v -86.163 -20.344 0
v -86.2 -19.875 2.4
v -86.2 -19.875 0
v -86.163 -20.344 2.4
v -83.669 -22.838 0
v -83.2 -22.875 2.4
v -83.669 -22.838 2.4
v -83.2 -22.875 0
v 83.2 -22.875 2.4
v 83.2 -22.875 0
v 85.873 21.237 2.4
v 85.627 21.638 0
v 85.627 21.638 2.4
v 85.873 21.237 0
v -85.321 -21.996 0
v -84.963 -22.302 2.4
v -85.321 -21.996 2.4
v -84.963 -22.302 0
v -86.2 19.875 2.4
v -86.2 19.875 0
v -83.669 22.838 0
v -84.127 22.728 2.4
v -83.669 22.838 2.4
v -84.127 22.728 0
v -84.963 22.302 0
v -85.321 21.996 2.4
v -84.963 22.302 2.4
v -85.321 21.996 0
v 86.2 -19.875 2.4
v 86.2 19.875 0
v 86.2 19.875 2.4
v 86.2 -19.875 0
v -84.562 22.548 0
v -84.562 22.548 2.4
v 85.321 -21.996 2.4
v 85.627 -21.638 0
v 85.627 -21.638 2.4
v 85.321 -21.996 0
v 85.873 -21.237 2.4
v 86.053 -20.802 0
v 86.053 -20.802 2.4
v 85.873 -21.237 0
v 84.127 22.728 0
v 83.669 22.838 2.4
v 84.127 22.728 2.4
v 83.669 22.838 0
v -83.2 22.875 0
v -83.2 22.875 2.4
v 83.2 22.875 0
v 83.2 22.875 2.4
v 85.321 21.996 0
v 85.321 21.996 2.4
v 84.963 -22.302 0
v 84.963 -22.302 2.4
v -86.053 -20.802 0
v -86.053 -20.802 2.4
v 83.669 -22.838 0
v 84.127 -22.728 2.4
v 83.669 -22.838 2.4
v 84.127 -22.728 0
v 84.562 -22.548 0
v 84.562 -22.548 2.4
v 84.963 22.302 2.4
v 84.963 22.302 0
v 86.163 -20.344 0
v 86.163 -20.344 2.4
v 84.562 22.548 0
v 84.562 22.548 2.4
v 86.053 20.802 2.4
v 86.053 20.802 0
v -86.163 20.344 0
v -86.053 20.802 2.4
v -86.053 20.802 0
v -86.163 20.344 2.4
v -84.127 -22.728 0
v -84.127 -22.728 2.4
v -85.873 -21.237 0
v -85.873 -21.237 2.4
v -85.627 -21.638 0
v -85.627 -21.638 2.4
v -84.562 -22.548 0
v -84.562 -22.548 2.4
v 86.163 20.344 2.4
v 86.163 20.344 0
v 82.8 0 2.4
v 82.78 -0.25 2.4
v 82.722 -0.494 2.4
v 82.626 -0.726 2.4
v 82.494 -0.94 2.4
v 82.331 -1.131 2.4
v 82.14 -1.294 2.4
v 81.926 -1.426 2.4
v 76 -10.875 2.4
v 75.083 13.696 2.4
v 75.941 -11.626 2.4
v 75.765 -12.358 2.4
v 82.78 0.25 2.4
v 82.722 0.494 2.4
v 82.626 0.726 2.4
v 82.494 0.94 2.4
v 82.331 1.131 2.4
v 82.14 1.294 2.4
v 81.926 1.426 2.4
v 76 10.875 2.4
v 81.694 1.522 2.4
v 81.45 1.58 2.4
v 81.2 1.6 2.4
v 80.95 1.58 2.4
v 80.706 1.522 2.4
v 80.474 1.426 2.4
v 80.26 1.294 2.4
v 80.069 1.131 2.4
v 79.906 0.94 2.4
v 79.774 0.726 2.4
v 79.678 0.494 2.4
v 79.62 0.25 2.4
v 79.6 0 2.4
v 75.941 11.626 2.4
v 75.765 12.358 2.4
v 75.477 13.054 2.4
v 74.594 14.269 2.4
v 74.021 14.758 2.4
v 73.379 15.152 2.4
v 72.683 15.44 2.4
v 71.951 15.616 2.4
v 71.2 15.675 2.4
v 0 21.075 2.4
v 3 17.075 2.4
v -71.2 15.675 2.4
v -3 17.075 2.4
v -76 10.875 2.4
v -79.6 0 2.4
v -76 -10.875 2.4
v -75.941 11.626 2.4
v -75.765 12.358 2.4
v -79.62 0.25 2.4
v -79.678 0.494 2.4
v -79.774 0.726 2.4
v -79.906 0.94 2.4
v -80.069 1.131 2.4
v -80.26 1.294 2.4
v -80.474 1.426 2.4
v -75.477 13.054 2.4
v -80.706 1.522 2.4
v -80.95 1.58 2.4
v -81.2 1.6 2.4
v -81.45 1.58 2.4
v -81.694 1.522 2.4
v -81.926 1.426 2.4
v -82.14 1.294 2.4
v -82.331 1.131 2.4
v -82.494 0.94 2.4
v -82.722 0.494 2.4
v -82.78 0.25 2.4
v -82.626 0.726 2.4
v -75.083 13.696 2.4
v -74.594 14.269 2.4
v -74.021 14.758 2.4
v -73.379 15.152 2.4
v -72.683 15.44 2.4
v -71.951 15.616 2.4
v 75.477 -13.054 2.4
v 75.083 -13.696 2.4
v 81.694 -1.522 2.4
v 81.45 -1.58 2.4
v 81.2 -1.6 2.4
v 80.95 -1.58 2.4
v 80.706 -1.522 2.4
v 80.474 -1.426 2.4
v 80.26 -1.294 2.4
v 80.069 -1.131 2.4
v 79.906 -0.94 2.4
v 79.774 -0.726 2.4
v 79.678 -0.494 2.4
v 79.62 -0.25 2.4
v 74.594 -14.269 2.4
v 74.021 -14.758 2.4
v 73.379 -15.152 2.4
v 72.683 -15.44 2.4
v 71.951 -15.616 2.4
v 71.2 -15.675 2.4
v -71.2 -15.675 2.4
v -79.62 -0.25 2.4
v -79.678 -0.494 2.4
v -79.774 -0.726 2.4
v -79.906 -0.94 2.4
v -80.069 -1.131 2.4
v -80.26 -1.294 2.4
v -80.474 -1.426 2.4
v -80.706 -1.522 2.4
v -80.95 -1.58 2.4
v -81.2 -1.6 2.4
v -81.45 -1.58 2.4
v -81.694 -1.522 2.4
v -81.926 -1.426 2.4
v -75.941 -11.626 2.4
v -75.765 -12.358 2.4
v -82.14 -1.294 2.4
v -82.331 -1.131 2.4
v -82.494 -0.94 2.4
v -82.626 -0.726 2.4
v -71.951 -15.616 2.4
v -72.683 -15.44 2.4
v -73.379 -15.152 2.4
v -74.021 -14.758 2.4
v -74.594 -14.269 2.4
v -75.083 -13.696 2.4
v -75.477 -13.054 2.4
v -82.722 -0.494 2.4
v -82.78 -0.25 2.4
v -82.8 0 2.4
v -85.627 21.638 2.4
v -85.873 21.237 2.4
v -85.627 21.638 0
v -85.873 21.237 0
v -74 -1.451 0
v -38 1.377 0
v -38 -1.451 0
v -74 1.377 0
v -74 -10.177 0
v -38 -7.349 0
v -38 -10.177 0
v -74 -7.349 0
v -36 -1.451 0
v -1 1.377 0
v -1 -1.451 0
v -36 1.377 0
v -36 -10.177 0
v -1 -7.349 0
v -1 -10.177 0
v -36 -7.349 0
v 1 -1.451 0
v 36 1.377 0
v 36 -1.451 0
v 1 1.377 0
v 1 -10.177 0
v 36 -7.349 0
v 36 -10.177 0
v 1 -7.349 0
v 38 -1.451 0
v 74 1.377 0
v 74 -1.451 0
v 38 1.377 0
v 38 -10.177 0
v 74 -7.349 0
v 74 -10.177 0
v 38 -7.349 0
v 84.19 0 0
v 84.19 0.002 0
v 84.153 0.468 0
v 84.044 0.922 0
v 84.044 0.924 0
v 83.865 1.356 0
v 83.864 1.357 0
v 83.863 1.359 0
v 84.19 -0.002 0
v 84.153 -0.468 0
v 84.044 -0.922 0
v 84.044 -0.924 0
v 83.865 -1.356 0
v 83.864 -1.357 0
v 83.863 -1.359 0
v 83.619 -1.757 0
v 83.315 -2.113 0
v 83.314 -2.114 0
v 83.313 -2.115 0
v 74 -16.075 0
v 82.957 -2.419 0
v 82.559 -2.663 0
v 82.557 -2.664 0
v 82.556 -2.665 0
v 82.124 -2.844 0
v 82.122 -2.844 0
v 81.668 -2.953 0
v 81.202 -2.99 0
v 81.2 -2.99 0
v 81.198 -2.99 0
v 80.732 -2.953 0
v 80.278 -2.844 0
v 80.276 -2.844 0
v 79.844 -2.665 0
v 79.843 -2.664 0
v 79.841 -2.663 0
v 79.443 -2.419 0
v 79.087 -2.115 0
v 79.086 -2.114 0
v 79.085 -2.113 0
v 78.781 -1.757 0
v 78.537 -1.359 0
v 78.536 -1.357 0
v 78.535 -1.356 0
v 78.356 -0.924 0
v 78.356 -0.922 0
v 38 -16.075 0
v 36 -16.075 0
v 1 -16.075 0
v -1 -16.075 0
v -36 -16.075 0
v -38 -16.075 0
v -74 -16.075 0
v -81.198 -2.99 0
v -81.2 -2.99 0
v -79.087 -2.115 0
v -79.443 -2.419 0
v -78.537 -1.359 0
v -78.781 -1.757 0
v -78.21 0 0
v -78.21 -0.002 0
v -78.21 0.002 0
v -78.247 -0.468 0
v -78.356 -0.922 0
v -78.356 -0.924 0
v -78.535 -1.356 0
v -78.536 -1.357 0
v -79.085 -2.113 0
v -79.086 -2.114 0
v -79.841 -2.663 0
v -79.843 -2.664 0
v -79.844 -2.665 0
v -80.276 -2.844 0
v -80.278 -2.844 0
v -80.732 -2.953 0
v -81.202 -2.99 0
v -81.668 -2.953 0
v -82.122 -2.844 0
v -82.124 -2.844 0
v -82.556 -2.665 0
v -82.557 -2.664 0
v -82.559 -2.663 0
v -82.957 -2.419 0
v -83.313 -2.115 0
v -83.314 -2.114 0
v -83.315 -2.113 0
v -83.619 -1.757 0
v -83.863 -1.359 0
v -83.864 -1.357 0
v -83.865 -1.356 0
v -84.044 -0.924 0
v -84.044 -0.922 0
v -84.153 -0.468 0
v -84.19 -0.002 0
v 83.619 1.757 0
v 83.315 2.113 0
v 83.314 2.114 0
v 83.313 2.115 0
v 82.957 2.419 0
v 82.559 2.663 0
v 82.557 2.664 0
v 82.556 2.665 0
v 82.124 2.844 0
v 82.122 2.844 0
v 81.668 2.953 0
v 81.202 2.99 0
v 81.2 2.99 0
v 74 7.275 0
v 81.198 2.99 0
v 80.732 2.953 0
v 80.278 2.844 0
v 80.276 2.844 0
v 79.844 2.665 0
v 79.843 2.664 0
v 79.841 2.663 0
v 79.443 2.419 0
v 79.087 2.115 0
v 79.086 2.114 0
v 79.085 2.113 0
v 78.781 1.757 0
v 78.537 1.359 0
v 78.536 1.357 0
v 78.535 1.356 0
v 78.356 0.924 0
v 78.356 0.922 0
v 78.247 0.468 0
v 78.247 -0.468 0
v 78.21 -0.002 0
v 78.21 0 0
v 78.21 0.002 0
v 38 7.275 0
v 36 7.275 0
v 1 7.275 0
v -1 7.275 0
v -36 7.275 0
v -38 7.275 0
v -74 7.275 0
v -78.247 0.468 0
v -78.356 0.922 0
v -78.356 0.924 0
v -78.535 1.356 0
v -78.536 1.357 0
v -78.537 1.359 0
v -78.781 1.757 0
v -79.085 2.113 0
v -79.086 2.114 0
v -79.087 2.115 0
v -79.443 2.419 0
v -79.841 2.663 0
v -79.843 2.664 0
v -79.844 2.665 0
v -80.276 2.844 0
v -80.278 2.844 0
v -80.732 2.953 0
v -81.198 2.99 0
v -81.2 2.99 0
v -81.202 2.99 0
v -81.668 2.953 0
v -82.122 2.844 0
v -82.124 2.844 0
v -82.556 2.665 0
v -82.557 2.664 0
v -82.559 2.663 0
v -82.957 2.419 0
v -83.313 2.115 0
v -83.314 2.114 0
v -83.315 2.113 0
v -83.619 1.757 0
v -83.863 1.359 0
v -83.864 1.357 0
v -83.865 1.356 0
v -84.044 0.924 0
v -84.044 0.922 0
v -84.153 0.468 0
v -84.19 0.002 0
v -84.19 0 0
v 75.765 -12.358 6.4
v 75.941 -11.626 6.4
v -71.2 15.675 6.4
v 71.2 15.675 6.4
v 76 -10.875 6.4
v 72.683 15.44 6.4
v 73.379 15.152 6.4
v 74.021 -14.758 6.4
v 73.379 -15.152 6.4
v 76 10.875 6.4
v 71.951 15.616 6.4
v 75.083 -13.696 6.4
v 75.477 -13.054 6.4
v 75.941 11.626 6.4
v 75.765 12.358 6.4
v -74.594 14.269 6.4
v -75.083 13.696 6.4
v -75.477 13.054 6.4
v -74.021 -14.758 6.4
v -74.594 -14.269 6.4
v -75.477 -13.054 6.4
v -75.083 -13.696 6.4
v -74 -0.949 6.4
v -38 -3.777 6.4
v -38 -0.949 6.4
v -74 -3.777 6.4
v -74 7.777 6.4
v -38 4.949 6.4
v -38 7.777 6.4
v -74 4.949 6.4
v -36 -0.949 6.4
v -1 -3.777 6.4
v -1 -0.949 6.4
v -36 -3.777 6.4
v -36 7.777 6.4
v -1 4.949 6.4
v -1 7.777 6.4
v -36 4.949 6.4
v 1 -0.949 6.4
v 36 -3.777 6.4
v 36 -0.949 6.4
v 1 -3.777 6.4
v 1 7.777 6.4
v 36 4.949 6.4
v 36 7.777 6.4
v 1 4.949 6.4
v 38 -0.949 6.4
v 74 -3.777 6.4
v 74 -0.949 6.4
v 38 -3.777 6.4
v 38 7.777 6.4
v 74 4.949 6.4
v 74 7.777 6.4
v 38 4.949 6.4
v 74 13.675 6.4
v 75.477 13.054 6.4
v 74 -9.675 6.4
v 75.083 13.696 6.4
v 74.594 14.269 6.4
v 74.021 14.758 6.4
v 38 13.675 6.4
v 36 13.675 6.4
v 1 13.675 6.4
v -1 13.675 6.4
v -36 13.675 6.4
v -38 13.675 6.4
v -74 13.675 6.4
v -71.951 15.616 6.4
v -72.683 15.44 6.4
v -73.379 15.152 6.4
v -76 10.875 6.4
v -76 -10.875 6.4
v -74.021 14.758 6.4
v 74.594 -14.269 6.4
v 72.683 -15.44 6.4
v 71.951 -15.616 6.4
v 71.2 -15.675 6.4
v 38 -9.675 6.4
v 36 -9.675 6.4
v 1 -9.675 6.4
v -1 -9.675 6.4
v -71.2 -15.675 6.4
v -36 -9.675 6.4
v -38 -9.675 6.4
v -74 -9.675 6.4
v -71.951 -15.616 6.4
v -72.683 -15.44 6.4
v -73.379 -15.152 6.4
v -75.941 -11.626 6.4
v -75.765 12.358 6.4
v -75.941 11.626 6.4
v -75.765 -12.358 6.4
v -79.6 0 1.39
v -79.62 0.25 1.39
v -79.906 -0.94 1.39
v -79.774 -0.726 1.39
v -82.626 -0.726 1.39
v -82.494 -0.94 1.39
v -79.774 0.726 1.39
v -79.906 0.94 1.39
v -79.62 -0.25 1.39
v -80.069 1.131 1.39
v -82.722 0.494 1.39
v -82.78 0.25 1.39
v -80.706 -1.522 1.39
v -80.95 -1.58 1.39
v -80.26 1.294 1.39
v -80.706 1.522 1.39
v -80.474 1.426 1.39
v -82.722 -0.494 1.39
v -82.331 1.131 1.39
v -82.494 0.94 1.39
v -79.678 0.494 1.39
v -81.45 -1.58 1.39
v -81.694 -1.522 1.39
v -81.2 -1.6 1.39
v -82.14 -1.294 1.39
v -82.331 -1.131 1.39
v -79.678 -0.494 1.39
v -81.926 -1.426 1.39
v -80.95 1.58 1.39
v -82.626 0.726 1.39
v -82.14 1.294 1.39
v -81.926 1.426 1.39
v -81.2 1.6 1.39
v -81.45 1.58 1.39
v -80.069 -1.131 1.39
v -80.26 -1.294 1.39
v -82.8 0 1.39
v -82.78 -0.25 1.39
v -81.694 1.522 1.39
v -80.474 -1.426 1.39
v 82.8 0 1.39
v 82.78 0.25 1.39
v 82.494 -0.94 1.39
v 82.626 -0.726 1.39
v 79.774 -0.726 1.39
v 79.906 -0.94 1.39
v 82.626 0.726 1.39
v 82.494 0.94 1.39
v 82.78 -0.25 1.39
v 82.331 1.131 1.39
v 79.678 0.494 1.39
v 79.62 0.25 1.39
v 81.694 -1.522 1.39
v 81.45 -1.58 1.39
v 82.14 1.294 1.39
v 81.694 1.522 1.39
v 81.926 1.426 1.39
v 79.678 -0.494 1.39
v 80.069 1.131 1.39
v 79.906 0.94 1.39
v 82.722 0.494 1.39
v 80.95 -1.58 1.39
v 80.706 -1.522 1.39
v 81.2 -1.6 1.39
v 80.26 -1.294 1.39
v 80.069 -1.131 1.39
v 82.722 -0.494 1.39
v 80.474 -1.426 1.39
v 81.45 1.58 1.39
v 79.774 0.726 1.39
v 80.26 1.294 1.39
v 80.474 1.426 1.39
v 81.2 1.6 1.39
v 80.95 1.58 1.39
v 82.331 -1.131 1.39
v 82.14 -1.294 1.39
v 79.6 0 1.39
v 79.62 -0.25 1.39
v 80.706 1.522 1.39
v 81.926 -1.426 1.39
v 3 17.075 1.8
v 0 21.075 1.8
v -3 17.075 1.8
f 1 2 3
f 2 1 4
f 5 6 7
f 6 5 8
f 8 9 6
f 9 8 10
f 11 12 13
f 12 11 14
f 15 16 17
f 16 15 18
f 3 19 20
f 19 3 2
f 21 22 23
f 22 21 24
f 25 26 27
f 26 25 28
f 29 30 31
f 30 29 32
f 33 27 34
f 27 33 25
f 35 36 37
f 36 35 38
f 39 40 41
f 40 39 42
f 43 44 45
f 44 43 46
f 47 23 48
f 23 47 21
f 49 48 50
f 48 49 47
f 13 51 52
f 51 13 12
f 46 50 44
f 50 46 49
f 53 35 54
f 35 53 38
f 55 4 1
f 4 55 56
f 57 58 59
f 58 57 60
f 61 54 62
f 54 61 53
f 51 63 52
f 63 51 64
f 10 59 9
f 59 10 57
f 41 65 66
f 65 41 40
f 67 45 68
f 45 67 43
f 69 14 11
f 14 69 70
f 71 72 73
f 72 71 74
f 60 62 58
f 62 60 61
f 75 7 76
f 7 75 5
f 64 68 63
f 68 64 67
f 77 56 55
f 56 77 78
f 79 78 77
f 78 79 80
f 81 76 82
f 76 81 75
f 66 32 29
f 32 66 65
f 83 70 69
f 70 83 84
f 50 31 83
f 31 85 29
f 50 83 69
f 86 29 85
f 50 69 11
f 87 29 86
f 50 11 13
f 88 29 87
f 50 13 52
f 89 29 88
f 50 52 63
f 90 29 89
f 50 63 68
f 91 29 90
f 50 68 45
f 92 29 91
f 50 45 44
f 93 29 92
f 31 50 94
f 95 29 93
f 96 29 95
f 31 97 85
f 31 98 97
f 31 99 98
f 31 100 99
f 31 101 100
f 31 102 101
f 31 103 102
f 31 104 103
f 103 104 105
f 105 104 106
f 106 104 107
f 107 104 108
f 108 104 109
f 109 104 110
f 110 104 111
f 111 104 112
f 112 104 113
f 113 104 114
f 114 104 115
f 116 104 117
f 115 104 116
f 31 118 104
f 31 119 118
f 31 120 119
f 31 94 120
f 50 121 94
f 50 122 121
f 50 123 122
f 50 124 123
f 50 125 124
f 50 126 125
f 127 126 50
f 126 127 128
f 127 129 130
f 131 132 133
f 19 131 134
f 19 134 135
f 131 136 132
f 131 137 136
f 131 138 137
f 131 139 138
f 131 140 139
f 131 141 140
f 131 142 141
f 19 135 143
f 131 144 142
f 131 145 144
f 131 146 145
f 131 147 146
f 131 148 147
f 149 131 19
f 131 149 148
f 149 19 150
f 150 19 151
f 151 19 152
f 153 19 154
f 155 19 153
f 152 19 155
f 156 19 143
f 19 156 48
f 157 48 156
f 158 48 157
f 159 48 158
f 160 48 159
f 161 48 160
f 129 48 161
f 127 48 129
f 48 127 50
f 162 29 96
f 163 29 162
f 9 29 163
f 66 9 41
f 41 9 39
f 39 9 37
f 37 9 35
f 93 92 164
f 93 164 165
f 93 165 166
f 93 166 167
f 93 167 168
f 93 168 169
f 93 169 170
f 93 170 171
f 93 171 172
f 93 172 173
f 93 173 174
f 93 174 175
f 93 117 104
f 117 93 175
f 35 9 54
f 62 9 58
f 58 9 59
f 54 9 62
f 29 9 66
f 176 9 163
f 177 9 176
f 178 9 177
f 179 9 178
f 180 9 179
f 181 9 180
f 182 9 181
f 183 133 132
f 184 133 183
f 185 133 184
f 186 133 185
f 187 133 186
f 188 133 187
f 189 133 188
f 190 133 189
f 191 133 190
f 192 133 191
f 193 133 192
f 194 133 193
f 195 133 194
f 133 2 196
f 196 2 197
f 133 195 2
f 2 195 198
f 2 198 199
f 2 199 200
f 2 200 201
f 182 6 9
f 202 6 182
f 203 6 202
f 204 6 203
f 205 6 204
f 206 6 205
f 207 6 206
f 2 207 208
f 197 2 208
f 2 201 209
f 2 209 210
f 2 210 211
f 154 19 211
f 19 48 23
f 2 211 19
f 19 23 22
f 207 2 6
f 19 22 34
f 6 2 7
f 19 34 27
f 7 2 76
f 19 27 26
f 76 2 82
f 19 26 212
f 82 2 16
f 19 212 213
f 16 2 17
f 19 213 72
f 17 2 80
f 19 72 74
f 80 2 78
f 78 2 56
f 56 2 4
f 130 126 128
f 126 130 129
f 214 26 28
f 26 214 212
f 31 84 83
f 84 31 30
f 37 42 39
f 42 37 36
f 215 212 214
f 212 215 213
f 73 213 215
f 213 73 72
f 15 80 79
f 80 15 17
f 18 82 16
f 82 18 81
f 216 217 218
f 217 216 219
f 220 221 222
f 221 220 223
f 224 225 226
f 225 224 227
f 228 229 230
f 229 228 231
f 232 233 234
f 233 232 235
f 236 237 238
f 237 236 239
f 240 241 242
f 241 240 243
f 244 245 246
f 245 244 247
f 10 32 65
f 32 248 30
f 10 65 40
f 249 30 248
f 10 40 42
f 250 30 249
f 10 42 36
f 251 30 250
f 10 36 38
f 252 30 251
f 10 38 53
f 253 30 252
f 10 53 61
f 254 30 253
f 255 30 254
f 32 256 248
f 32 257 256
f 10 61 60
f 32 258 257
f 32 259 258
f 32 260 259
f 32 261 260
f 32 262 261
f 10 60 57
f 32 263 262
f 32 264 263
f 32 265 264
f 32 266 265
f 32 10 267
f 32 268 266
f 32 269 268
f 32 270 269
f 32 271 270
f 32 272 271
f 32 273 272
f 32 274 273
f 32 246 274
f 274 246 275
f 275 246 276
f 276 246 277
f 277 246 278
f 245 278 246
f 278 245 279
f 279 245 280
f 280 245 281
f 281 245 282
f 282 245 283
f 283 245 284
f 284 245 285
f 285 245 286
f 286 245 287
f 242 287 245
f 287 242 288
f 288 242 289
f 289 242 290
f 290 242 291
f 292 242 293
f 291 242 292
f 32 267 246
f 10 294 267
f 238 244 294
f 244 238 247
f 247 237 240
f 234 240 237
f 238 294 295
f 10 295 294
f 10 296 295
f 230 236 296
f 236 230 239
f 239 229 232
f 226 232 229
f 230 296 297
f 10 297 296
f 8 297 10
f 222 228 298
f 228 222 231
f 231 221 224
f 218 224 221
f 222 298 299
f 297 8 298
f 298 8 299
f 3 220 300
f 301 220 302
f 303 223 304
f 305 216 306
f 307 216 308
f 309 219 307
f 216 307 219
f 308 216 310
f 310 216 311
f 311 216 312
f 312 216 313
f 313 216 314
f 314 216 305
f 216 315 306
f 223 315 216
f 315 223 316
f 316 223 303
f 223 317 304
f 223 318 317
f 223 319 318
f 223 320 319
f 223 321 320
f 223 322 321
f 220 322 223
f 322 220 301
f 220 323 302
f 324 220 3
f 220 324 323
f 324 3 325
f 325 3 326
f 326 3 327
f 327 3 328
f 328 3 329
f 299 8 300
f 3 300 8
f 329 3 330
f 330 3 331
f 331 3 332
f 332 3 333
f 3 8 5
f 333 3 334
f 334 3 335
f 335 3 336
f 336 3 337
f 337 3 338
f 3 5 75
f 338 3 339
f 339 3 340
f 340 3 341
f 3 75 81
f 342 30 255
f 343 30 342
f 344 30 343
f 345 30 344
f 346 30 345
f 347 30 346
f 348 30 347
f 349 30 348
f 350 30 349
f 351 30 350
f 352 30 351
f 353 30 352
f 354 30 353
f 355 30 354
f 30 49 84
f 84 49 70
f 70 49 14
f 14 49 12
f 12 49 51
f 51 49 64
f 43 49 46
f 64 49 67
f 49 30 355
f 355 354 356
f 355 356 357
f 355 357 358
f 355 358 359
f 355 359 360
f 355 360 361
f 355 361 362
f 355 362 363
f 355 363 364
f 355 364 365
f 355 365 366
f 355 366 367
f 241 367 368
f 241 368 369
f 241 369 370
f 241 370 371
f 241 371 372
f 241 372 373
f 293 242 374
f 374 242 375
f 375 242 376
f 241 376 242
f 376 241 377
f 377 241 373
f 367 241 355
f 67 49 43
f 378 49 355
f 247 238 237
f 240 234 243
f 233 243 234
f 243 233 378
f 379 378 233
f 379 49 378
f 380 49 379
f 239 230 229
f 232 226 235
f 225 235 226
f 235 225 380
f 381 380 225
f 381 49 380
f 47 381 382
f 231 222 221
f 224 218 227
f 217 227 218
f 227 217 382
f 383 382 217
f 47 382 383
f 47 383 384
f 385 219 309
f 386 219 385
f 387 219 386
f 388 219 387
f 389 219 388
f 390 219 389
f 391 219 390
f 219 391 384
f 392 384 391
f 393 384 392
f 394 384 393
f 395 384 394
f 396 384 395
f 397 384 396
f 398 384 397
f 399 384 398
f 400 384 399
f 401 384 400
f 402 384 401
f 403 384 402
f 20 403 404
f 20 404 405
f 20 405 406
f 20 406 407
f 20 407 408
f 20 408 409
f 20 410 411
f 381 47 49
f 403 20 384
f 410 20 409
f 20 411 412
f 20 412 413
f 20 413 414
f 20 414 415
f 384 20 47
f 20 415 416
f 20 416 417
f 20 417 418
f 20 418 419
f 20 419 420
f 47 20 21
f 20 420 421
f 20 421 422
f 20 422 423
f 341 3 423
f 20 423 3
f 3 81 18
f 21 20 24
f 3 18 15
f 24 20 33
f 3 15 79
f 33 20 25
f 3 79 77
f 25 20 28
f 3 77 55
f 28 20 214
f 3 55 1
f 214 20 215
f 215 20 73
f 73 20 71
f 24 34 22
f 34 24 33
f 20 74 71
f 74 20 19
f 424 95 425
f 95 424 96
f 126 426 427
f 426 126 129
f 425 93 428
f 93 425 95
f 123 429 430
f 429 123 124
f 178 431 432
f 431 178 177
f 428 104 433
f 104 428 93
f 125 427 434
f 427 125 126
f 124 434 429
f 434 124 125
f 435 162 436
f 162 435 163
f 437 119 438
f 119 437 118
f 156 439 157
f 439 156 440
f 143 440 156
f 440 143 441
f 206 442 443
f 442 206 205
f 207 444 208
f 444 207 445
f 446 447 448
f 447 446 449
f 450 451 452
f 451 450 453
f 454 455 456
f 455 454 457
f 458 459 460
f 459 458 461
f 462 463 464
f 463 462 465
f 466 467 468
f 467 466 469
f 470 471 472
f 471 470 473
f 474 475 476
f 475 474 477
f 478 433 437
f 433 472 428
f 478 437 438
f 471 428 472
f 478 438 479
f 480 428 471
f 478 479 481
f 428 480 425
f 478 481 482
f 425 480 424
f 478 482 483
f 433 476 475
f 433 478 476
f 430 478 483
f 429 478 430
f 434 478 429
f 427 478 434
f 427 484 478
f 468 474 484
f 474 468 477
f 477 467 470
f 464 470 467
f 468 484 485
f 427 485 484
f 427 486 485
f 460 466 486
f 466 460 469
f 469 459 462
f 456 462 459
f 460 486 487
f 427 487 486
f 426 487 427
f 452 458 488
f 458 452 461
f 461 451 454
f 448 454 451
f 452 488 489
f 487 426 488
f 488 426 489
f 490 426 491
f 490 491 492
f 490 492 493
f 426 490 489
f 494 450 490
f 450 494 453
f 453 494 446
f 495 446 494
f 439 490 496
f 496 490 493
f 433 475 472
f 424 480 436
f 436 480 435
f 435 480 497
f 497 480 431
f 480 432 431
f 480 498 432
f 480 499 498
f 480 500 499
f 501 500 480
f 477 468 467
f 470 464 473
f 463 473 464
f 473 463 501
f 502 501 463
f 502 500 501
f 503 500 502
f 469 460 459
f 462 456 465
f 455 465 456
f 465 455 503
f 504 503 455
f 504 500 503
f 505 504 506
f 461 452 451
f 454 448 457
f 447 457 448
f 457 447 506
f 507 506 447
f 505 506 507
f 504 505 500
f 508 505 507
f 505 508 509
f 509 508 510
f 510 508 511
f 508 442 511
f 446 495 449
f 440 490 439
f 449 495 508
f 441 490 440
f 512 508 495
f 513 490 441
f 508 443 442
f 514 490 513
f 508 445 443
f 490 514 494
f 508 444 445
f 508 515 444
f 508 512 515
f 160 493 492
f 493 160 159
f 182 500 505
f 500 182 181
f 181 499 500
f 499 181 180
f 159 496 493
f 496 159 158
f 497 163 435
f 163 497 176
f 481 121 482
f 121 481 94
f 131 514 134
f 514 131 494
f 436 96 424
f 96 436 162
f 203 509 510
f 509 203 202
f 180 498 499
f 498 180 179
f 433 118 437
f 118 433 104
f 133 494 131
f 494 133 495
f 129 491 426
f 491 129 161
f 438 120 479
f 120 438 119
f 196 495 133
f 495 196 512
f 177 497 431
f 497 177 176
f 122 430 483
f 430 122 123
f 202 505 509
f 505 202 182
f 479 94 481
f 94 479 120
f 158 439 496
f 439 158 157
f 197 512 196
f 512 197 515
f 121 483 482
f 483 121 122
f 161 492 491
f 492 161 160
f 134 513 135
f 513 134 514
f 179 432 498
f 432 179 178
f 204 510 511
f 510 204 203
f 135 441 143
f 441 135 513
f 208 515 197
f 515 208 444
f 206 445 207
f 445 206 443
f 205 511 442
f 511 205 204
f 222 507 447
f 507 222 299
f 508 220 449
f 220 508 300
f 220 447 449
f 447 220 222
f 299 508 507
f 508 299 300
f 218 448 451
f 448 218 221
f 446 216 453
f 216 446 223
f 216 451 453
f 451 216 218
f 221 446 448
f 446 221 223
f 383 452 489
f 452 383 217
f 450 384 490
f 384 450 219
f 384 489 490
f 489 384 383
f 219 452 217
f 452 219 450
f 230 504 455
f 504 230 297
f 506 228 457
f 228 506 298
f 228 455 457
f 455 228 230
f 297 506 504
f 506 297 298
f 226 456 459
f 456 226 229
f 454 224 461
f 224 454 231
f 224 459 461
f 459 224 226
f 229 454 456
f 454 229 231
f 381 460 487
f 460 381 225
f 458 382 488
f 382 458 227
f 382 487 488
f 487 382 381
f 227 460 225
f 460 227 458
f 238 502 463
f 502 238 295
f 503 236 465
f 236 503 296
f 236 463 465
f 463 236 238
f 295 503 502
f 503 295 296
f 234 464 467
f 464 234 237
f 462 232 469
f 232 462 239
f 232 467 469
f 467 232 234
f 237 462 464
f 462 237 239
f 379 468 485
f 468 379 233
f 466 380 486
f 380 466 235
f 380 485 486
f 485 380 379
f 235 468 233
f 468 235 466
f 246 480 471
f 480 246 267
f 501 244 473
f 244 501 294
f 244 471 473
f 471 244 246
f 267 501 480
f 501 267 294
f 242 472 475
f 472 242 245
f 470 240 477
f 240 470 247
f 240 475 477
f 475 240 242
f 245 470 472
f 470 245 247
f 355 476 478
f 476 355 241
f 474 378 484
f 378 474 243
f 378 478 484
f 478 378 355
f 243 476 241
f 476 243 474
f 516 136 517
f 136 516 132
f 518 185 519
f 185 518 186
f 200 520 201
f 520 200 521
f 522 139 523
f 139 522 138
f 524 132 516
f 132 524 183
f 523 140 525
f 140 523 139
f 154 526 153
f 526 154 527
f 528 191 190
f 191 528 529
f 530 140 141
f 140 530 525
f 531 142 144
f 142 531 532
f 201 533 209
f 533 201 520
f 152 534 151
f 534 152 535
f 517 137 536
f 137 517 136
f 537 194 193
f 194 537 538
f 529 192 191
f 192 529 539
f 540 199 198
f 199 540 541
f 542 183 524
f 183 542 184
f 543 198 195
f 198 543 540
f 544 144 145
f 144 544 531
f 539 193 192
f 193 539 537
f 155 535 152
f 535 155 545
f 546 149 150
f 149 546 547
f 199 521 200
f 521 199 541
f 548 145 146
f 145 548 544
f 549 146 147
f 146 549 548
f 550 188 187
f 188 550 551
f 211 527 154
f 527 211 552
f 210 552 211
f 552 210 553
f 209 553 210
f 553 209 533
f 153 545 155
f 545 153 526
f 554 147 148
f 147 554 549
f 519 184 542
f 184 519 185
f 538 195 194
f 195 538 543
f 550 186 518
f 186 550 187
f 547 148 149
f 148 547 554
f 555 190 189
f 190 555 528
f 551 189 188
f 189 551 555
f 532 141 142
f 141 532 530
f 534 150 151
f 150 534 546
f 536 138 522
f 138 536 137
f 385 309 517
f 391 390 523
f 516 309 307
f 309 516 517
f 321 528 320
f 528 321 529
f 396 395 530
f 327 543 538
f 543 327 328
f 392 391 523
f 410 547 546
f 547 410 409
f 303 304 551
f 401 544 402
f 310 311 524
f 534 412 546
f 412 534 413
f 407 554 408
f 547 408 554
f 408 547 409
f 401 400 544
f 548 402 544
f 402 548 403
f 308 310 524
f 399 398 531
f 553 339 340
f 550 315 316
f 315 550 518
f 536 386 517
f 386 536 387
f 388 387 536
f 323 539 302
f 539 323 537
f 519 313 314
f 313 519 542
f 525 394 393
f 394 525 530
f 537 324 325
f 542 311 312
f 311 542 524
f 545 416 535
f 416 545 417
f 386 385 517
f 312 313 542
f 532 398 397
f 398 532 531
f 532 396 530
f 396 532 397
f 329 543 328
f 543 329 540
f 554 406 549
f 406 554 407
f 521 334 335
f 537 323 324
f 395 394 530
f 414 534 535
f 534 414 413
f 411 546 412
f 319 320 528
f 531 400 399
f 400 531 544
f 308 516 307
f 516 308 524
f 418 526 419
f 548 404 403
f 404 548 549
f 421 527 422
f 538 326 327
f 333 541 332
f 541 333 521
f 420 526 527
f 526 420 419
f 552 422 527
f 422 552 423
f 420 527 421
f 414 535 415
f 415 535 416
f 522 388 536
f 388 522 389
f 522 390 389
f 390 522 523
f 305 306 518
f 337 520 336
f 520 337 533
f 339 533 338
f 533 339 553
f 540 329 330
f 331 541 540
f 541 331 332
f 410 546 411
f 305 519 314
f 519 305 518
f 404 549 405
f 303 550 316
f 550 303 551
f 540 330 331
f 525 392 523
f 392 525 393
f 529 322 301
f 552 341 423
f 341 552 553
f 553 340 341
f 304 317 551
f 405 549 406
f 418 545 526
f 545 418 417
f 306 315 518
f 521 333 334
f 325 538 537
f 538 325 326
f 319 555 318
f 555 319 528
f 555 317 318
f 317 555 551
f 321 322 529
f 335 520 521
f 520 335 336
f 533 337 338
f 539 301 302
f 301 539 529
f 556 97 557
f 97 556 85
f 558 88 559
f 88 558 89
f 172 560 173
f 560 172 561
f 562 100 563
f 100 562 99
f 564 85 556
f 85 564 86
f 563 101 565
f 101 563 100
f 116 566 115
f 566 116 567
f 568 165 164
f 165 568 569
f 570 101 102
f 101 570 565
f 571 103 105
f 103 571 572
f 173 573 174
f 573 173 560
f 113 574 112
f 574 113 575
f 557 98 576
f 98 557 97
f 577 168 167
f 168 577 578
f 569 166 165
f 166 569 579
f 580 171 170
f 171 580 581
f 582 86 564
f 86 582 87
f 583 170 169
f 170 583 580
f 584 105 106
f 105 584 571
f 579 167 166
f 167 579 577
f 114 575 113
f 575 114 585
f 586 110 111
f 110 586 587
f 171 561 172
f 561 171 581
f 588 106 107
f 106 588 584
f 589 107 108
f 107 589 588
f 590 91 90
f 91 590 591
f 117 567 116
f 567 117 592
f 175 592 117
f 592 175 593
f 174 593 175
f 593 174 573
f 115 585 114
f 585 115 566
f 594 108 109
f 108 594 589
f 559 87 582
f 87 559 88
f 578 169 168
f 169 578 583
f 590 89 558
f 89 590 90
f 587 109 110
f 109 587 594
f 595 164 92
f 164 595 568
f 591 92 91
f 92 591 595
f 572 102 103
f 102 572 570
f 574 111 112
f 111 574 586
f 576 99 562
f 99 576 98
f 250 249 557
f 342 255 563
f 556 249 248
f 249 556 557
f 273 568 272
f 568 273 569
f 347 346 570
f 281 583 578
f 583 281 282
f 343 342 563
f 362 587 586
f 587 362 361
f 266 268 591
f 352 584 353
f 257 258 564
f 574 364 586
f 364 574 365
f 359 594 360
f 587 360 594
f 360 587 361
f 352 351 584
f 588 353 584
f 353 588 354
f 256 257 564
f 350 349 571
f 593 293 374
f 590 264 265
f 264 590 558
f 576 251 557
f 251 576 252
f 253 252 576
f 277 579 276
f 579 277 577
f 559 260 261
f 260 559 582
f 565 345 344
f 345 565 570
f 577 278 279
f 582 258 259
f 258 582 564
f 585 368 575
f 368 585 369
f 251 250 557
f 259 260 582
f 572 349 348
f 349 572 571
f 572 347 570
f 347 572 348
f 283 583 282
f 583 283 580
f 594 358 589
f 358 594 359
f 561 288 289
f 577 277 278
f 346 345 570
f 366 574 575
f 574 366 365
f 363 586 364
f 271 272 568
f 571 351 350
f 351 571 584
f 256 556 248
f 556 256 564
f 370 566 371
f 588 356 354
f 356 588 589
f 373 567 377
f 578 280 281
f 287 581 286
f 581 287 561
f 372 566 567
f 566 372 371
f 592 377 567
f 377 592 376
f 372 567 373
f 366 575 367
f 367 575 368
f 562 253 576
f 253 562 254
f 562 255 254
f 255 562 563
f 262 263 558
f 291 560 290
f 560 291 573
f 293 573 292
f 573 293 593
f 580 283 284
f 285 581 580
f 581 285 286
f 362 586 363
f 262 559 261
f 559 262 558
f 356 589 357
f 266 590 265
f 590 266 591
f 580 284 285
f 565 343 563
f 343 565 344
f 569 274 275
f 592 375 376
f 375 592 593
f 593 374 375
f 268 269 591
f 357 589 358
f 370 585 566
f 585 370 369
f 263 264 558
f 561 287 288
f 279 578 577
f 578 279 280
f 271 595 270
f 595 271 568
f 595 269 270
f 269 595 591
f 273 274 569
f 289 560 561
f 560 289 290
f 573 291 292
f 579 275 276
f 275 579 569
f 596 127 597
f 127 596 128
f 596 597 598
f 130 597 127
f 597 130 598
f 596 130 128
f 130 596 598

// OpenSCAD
// Side vent grille for the plywood box prototype.
//
// Fits a rectangular hole cut in a box side: the flange sits on the outside
// face and the plug goes into the hole. The slats slope down on the way out,
// so from level or above you can't see in (the Pi's LEDs stay out of the
// bedroom) and dust doesn't fall in.
//
// Print it flange face down, no supports. Units are millimetres. The console
// echoes the size, the slat spacing and the open area. See README.md.

/* [Hole in the box side] */
// Hole width (6 in)
hole_w = 152.4;
// Hole height (1 1/4 in). Keep it clear of the top and bottom panels behind the side
hole_h = 31.75;
// Plug corner radius. If you drill the hole's corners, at least the drill's radius
hole_r = 5;
// Gap between the plug and the hole, each side
fit = 0.2;
// How far the plug goes into the hole. Less than the plywood thickness
plug_depth = 4;

/* [Flange] */
flange_t = 2.4;
// Flange width above and below the hole
flange_side = 7;
// Flange width at each end, where the screws go
flange_end = 10;
screws = true;
// #4 flat-head wood screw: shank clearance and head diameter
screw_d = 3.2;
screw_head_d = 6;


/* [Slats] */
// Slope of the slats below horizontal, on the way out. 0 = straight slots
slat_angle = 45; // [0:5:50]
slat_t = 2;
// Number of openings between the slats. 0 = the fewest that still hide the inside from level view
channels = 0;
// Upright ribs tying the slats together across the width, so they don't flex
ribs = 3; // [0:6]
rib_t = 2;
// Wall around the slats
frame = 2;

/* [Hidden] */
$fn = 40;
eps = 0.01;

depth  = flange_t + plug_depth;
plug_w = hole_w - 2 * fit;
plug_h = hole_h - 2 * fit;
in_w   = plug_w - 2 * frame;
in_h   = plug_h - 2 * frame;
out_w  = hole_w + 2 * flange_end;
out_h  = hole_h + 2 * flange_side;

// Every opening is a full channel from the outside face to the inside face,
// sloping with the slats, so none dead-ends against the frame. At the outside
// face the channels span y_lo..y_hi: the floor starts below the plug's inner
// wall (the flange is solid there) and the roof ends low enough to clear the
// frame at the inside face.
drop   = depth * tan(slat_angle);       // rise of a channel from outside to inside
slat_v = slat_t / cos(slat_angle);      // slat thickness measured vertically
y_lo   = -in_h / 2 - flange_t * tan(slat_angle);
y_hi   = in_h / 2 - drop;
span   = y_hi - y_lo;
n      = channels > 0 ? channels
       : slat_angle > 0 ? ceil((span + slat_v) / (drop + slat_v))
       : max(1, round((span + slat_t) / 5));
gap    = (span - (n - 1) * slat_v) / n;  // channel height, measured vertically
// A level view is blocked when each channel rises at least its own height
hides  = slat_angle > 0 && gap <= drop + eps;
// Open area measured square to the airflow
open_cm2 = (in_w - ribs * rib_t) * n * gap * cos(slat_angle) / 100;

echo(str("Vent ", out_w, " x ", out_h, " x ", depth, " mm; hole ", hole_w, " x ", hole_h, " mm"));
echo(str(n, " openings ", round(gap * 10) / 10, " mm tall; open area about ",
         round(open_cm2), " cm2 (", round(open_cm2 / 6.4516 * 10) / 10, " in2)"));
echo(hides ? "Level view into the box: blocked" : "Level view into the box: OPEN (more channels or a steeper slat_angle)");
if (gap < 1.5) echo("WARNING: openings under 1.5 mm will clog with dust; use fewer channels");
if (slat_angle > 50) echo("WARNING: slats steeper than 50 degrees may not print without supports");

module rounded_rect(w, h, r) {
    offset(r) square([w - 2 * r, h - 2 * r], center = true);
}

// One opening, x0..x0+w across. +y is up on the box; z = 0 is the outside face.
module channel(y0, x0, w) {
    multmatrix([[1, 0, 0, 0], [0, 1, tan(slat_angle), 0], [0, 0, 1, 0]])
        translate([x0, y0, -1]) cube([w, gap, depth + 2]);
}

// The openings, cut between the ribs
module channels() {
    rib_x = [for (i = [1 : ribs]) -in_w / 2 + i * in_w / (ribs + 1)];
    starts = concat([-in_w / 2], [for (c = rib_x) c + rib_t / 2]);
    ends   = concat([for (c = rib_x) c - rib_t / 2], [in_w / 2]);
    for (s = [0 : len(starts) - 1], k = [0 : n - 1])
        channel(y_lo + k * (gap + slat_v), starts[s], ends[s] - starts[s]);
}

module screw_hole() {
    translate([0, 0, -1]) cylinder(d = screw_d, h = depth + 2);
    translate([0, 0, -eps]) cylinder(d1 = screw_head_d, d2 = screw_d, h = (screw_head_d - screw_d) / 2);
}

// Arrow on the back of the flange, pointing up, for fitting it the right way round
module up_arrow() {
    translate([0, hole_h / 2 + fit + 1, flange_t - 0.6])
        linear_extrude(1) polygon([[-3, 0], [3, 0], [0, 4]]);
}

module vent() {
    difference() {
        union() {
            linear_extrude(flange_t) rounded_rect(out_w, out_h, 3);
            linear_extrude(depth) rounded_rect(plug_w, plug_h, max(hole_r - fit, 0.5));
        }
        channels();
        if (screws)
            for (s = [-1, 1]) translate([s * (hole_w / 2 + flange_end / 2), 0, 0]) screw_hole();
        up_arrow();
    }
}

vent();
